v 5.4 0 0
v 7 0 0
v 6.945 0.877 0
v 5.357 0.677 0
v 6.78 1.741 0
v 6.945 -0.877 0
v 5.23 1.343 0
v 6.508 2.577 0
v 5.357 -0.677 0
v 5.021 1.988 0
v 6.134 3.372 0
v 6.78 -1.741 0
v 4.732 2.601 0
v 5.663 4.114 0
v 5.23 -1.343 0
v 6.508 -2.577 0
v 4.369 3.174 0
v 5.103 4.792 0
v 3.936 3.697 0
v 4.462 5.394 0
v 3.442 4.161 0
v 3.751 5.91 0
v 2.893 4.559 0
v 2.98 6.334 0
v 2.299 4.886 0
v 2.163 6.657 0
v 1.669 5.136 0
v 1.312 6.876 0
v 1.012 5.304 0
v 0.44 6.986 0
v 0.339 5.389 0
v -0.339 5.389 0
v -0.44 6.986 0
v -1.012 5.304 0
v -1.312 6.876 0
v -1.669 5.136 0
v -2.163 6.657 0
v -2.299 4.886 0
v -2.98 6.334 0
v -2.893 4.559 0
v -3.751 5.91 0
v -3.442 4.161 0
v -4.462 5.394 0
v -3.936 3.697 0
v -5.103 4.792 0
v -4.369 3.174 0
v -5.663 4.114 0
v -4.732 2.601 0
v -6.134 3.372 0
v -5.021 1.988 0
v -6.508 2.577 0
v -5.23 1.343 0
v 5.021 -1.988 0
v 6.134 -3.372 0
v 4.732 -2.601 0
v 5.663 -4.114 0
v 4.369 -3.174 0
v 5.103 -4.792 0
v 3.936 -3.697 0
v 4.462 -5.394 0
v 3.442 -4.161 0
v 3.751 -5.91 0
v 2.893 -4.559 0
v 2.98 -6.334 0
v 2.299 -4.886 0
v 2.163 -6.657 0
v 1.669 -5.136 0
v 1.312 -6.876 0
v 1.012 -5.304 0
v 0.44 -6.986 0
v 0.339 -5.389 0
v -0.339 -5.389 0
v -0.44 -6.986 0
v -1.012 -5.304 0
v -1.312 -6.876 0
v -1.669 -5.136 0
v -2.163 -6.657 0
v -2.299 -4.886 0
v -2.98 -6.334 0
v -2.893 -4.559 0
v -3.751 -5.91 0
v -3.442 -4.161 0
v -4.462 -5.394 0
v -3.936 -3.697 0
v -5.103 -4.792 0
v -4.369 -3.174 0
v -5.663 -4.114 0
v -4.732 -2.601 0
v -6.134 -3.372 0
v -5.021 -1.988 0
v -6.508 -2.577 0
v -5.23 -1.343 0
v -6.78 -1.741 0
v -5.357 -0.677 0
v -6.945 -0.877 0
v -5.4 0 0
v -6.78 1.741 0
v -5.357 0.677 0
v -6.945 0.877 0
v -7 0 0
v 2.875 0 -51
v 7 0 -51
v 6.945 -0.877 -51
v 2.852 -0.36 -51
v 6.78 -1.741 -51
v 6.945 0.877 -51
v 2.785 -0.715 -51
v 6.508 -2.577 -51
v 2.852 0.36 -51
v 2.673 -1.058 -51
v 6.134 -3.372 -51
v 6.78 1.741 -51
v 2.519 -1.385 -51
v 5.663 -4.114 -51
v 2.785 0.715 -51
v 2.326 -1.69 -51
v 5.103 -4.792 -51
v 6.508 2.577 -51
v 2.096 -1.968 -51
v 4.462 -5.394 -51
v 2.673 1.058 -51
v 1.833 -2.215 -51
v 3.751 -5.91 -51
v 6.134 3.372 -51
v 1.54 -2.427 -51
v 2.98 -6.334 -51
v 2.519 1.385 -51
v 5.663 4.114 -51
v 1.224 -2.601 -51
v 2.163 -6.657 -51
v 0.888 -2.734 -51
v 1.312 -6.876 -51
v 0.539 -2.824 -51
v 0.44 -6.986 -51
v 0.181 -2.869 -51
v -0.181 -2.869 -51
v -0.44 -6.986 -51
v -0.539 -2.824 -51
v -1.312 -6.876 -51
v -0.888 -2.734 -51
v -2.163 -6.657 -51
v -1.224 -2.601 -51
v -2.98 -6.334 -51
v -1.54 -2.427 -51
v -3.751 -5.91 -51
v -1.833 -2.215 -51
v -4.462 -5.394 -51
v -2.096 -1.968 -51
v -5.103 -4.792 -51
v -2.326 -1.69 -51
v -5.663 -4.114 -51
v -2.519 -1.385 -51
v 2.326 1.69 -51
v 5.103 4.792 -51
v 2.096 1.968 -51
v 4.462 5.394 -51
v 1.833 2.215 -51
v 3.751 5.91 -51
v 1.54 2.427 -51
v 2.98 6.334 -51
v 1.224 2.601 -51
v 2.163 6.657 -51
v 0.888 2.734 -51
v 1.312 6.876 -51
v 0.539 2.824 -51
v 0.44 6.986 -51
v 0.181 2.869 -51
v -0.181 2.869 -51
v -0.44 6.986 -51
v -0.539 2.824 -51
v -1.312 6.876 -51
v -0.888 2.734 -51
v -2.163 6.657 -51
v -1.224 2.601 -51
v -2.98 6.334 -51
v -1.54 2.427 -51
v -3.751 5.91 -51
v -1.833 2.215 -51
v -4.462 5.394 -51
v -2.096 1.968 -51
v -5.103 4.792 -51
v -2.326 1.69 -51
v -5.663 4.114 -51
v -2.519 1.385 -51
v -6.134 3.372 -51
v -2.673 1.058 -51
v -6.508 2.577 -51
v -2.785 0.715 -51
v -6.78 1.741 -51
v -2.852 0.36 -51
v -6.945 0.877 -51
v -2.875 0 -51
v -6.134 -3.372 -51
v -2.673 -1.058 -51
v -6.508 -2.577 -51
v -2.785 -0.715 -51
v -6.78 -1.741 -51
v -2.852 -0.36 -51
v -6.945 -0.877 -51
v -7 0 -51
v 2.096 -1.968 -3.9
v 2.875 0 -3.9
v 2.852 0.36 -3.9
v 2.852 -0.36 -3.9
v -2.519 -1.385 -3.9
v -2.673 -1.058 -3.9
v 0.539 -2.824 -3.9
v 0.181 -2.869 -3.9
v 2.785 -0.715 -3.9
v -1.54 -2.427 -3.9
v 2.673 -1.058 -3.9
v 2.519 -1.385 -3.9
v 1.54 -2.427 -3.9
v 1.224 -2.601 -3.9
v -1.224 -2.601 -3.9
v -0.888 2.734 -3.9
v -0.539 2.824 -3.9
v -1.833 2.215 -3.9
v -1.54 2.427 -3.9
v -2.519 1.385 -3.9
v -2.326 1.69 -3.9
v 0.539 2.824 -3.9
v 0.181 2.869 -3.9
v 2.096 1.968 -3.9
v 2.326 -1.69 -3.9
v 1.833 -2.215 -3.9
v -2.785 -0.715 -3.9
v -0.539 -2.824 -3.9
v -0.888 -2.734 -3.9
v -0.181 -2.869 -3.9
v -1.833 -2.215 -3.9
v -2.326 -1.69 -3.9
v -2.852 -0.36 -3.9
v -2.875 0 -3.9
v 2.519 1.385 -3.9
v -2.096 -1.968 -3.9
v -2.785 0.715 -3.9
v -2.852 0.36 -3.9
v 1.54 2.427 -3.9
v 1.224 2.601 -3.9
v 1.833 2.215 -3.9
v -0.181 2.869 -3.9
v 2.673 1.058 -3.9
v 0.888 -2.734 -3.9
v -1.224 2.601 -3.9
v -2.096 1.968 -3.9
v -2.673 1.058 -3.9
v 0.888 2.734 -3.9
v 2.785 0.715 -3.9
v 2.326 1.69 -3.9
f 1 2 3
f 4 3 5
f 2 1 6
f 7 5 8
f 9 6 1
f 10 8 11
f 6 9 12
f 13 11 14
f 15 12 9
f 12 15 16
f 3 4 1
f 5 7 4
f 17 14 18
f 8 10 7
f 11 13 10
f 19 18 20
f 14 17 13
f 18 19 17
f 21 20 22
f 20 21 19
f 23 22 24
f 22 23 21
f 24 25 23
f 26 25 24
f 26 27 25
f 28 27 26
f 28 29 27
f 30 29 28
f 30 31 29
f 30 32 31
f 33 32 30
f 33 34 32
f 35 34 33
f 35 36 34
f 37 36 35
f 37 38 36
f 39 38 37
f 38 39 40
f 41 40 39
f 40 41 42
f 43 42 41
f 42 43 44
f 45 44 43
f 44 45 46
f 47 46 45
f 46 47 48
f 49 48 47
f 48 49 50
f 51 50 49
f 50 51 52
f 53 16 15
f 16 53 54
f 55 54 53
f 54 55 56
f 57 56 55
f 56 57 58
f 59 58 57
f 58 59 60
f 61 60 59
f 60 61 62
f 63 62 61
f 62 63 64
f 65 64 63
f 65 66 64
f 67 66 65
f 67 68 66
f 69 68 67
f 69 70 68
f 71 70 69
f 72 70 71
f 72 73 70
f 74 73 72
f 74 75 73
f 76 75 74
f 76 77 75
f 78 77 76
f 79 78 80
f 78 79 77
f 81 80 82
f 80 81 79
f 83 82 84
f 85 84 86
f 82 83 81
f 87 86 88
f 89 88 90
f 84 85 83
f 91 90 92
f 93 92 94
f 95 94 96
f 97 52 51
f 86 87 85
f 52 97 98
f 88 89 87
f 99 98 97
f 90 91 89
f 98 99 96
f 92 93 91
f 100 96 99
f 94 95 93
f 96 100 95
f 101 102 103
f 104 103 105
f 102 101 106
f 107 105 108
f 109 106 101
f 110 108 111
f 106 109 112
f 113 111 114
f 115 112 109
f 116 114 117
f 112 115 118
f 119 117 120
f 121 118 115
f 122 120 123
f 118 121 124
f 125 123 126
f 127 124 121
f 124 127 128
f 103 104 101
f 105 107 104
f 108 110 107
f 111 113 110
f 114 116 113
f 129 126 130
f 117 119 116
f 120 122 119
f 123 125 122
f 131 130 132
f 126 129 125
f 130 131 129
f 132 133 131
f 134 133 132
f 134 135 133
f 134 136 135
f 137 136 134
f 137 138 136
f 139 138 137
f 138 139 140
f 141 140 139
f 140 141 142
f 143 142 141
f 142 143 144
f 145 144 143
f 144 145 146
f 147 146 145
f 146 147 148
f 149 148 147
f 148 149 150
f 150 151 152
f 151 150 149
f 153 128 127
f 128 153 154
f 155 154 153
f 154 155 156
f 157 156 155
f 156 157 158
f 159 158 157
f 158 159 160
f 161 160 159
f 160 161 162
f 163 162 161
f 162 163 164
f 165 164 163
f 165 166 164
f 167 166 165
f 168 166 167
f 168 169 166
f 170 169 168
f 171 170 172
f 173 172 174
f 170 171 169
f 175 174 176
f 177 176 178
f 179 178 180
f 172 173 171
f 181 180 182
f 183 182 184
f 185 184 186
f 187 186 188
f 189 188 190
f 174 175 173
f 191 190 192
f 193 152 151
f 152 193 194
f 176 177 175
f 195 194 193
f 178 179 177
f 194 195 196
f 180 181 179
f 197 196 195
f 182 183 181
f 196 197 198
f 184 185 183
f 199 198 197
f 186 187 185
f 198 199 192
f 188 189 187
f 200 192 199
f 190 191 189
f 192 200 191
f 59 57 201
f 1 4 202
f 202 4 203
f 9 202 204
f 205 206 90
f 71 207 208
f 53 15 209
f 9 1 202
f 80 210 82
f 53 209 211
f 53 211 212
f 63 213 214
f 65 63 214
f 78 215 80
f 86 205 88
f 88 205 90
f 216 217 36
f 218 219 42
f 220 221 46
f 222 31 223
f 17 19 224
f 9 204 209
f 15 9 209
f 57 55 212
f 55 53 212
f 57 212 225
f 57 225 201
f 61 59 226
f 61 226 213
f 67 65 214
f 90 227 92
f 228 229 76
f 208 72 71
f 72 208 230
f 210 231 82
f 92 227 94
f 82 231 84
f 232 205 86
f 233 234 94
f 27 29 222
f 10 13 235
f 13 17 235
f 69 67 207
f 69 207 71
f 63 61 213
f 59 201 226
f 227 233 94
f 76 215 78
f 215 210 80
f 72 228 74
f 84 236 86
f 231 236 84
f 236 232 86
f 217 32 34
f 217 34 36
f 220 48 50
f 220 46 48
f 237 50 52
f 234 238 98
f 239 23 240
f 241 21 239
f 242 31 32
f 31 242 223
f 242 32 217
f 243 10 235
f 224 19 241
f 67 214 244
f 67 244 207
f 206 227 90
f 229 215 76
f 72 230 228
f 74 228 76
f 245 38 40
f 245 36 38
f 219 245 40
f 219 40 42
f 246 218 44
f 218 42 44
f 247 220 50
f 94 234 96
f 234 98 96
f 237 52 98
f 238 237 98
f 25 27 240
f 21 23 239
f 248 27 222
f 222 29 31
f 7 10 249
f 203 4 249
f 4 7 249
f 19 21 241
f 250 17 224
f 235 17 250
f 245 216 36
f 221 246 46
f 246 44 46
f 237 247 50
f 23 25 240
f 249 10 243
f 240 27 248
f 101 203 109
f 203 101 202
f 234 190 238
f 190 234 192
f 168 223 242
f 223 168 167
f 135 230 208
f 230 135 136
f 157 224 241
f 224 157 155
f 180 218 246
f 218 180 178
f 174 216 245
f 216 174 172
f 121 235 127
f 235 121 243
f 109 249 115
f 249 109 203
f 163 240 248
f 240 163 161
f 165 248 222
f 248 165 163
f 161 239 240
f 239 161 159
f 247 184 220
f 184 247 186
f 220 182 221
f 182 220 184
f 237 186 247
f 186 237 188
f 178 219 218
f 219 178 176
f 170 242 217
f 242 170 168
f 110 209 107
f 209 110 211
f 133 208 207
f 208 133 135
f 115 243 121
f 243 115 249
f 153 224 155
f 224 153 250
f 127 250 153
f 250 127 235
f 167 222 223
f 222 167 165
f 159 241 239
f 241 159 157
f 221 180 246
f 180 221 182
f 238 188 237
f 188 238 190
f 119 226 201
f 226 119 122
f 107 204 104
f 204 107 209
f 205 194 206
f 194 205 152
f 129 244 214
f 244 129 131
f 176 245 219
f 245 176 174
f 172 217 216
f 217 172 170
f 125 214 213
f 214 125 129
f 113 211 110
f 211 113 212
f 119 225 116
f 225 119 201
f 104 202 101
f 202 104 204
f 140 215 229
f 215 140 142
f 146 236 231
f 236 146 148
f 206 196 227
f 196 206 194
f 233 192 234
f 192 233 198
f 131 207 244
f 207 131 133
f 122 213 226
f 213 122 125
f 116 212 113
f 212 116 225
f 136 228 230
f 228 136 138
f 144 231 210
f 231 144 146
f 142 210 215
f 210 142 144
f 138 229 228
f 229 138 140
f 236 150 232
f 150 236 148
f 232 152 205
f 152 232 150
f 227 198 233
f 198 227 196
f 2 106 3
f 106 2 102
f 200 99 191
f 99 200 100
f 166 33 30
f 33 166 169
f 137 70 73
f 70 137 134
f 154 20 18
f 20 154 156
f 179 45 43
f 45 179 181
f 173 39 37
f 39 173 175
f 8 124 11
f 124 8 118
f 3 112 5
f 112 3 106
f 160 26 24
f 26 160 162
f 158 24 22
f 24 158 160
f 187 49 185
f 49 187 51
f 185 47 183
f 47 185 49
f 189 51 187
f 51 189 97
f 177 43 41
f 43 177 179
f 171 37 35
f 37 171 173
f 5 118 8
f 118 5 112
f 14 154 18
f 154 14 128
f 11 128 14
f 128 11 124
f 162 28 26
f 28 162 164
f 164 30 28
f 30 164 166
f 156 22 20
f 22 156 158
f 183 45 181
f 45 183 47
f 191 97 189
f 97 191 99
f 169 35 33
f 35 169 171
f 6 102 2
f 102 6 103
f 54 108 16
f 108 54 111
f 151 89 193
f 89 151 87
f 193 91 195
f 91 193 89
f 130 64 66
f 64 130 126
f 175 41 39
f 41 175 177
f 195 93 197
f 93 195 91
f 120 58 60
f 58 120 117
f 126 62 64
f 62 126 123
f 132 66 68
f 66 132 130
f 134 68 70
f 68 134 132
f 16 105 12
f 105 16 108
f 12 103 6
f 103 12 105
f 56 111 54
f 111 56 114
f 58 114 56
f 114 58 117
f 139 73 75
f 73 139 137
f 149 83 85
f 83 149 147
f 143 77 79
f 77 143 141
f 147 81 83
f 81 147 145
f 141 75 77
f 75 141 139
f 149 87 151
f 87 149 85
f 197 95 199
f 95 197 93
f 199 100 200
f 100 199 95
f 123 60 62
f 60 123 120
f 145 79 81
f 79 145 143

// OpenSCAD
$fn = 50;


difference() {
	union() {
		translate(v = [0, 0, -51.0000000000]) {
			cylinder(h = 51, r = 7.0000000000);
		}
		cylinder(h = 0, r = 16.0000000000);
	}
	union() {
		translate(v = [0, 0, 0]) {
			rotate(a = [0, 0, 0]) {
				difference() {
					union() {
						#translate(v = [0, 0, -51.0000000000]) {
							cylinder(h = 51, r = 2.6000000000);
						}
						#translate(v = [0, 0, -3.9000000000]) {
							cylinder(h = 3.9000000000, r1 = 2.8750000000, r2 = 5.4000000000);
						}
						#translate(v = [0, 0, -51.0000000000]) {
							cylinder(h = 51, r = 2.8750000000);
						}
						#translate(v = [0, 0, -51.0000000000]) {
							cylinder(h = 51, r = 2.6000000000);
						}
					}
					union();
				}
			}
		}
	}
}
